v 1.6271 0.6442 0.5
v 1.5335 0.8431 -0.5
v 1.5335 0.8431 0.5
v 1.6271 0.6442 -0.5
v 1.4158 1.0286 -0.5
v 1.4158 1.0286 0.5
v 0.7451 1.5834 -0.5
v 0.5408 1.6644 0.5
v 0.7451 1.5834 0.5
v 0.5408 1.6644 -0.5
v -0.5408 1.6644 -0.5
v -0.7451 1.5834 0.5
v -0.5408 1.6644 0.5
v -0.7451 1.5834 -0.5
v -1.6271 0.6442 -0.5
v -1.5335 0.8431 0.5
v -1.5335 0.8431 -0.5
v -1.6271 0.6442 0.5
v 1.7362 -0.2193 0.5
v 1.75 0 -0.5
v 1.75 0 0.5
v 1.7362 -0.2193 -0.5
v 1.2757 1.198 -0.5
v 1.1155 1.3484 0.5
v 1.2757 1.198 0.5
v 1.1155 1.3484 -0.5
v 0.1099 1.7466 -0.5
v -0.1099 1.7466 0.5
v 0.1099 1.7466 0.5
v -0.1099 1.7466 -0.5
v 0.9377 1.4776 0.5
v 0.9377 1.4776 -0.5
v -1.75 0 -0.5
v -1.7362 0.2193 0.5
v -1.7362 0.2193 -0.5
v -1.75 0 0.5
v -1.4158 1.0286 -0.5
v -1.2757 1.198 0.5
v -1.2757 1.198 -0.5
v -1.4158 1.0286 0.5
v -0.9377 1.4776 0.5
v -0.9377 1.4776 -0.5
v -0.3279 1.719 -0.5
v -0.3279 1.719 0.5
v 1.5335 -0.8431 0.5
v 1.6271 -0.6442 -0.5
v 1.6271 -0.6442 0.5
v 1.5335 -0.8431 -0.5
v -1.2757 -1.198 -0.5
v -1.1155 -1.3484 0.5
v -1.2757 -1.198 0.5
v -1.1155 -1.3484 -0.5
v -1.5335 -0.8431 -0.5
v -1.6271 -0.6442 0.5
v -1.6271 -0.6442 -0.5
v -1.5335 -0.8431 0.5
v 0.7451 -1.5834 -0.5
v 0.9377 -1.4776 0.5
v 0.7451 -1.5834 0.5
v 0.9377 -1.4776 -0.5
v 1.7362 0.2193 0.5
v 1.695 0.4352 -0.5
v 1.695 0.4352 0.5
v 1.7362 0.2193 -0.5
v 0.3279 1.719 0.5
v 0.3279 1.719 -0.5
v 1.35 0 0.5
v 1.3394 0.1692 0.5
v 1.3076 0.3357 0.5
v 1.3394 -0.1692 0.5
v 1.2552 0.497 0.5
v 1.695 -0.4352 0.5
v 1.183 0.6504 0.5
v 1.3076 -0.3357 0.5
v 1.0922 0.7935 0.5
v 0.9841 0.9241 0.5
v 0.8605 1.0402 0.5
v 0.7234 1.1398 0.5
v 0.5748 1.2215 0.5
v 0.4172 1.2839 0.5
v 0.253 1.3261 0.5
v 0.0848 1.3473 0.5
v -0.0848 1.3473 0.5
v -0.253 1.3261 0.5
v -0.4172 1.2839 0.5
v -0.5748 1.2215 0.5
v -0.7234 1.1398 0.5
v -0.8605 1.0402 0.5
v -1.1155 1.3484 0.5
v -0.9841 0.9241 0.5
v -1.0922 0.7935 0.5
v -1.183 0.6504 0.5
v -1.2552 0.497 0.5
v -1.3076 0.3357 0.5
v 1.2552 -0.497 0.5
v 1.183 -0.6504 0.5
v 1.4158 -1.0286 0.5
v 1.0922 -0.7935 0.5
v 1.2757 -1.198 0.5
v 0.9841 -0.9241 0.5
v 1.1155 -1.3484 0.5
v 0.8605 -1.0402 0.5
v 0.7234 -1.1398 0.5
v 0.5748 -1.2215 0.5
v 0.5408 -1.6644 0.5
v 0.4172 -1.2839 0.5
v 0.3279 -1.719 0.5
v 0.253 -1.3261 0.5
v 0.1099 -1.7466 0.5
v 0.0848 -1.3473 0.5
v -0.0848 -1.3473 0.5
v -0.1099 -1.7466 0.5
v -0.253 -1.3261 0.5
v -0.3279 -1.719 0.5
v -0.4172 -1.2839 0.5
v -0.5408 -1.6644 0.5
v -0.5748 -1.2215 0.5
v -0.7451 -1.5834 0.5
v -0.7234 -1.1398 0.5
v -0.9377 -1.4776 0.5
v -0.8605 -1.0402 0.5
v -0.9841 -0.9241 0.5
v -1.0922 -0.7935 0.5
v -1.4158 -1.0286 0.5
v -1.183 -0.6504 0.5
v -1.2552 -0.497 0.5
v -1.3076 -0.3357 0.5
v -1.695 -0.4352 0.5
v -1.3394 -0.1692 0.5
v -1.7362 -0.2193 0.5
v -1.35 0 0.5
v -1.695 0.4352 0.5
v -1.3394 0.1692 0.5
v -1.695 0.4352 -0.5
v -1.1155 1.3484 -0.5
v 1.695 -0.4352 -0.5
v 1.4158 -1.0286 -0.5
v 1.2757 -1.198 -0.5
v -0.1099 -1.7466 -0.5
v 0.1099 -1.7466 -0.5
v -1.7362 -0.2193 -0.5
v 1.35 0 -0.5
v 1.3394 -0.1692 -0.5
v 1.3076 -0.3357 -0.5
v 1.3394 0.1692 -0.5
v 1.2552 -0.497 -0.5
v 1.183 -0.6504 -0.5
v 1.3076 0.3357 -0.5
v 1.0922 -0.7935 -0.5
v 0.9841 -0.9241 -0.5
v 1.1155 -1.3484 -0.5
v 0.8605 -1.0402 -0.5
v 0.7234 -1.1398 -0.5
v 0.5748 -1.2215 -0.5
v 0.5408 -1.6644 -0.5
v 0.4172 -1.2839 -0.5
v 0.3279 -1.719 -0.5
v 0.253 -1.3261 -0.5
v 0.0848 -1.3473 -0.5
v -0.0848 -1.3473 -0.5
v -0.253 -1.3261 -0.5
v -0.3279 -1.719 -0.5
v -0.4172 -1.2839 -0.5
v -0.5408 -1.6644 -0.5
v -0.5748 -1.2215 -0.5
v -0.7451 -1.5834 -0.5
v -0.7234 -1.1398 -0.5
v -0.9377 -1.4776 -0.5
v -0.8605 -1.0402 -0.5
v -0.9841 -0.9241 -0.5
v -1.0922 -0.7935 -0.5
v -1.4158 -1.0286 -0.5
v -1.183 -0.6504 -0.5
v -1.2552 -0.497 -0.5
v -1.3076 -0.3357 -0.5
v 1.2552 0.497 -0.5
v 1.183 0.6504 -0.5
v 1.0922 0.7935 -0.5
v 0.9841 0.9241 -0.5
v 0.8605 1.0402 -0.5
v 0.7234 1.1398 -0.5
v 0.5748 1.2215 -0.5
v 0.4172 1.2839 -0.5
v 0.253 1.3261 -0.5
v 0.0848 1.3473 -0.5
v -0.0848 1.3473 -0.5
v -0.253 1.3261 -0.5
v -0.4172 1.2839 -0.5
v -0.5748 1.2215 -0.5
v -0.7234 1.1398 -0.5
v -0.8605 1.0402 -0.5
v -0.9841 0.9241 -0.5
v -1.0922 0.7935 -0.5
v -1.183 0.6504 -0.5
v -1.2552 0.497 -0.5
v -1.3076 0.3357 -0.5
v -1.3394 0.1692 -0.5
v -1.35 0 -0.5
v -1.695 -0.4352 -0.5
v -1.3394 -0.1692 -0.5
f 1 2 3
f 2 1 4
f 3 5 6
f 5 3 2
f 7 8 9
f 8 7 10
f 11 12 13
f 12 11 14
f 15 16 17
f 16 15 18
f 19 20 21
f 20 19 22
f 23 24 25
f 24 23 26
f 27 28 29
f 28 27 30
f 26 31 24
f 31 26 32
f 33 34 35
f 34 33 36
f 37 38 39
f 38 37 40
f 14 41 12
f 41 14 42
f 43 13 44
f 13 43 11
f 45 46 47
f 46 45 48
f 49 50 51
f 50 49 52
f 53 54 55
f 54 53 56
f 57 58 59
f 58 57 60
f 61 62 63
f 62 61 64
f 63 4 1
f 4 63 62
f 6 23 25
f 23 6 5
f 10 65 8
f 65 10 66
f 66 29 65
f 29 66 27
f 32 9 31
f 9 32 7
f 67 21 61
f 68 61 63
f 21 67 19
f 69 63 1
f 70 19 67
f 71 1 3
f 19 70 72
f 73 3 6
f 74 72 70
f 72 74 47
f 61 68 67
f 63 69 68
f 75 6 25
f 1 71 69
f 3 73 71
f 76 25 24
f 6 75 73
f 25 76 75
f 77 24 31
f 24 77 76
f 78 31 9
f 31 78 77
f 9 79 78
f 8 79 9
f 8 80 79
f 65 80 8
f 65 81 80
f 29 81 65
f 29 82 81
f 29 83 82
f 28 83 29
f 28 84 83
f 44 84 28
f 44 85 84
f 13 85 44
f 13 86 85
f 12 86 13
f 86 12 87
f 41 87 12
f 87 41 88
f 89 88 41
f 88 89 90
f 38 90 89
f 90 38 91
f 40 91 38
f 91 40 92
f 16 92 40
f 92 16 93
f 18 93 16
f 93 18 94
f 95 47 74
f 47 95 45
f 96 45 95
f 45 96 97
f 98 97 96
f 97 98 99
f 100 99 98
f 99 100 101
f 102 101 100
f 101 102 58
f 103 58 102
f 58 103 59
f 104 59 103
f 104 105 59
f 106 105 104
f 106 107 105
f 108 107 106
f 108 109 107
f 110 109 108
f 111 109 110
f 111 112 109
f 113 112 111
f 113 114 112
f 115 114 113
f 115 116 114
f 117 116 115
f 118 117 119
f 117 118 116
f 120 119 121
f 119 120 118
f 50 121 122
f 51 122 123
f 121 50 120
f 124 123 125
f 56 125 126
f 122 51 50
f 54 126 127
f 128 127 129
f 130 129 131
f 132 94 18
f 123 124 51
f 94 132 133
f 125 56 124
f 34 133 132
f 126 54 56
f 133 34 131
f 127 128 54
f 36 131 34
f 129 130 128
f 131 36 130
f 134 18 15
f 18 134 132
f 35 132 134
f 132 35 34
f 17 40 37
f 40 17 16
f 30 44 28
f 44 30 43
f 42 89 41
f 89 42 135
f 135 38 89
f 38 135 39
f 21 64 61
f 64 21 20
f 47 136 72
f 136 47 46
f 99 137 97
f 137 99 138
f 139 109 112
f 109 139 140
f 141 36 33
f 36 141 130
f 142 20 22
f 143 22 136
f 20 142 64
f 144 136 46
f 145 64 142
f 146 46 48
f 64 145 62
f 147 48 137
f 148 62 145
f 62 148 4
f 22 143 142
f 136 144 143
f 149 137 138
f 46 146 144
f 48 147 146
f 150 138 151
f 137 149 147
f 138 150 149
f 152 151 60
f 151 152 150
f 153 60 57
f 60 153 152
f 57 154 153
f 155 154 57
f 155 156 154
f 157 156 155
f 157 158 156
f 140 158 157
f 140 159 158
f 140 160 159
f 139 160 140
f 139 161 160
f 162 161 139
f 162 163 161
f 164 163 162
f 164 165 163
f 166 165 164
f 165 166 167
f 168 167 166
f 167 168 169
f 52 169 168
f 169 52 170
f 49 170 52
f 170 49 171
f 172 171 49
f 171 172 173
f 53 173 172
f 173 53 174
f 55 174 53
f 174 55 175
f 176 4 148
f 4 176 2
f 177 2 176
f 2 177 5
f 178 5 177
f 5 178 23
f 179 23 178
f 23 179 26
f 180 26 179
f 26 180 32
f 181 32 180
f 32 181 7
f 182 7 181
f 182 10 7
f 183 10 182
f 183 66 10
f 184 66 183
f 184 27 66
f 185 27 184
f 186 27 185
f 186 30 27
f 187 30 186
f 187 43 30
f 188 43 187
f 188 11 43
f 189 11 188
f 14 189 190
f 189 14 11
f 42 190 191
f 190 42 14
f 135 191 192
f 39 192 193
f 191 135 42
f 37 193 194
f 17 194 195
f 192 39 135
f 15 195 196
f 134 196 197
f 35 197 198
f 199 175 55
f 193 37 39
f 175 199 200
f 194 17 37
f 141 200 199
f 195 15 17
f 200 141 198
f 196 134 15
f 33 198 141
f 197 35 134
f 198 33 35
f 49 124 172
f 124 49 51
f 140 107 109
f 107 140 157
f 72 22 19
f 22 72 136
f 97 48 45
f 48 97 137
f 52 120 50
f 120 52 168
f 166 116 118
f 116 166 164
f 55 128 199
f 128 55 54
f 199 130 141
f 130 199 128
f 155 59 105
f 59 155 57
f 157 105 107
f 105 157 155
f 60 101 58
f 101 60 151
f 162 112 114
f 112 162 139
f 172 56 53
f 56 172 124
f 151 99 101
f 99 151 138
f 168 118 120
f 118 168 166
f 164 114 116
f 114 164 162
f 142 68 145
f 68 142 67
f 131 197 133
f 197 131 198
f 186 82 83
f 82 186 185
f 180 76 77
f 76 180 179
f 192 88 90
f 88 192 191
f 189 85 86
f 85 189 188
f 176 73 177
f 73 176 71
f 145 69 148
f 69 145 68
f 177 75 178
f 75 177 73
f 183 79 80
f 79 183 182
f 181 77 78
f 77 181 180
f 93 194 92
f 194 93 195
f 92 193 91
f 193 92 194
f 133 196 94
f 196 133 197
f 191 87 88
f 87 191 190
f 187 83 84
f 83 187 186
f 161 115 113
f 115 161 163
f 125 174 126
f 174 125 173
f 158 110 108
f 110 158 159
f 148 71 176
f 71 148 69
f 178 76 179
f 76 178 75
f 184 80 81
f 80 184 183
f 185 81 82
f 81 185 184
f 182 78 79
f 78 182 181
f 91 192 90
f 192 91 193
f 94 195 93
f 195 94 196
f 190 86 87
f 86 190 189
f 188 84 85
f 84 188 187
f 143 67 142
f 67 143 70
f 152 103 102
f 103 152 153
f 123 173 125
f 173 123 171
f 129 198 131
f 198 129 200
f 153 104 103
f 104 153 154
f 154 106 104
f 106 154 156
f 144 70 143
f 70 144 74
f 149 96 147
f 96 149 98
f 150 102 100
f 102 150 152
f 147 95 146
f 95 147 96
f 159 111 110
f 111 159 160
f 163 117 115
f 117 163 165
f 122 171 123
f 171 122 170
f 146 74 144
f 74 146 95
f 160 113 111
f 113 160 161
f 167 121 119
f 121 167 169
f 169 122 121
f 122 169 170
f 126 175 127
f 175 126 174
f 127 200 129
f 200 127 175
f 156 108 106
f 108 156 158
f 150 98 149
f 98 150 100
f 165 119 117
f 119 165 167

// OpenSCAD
$fn = 50;


difference() {
	union() {
		translate(v = [0, 0, -0.5000000000]) {
			cylinder(h = 1, r = 1.7500000000);
		}
	}
	union() {
		translate(v = [0, 0, -100.0000000000]) {
			cylinder(h = 200, r = 1.3500000000);
		}
	}
}
